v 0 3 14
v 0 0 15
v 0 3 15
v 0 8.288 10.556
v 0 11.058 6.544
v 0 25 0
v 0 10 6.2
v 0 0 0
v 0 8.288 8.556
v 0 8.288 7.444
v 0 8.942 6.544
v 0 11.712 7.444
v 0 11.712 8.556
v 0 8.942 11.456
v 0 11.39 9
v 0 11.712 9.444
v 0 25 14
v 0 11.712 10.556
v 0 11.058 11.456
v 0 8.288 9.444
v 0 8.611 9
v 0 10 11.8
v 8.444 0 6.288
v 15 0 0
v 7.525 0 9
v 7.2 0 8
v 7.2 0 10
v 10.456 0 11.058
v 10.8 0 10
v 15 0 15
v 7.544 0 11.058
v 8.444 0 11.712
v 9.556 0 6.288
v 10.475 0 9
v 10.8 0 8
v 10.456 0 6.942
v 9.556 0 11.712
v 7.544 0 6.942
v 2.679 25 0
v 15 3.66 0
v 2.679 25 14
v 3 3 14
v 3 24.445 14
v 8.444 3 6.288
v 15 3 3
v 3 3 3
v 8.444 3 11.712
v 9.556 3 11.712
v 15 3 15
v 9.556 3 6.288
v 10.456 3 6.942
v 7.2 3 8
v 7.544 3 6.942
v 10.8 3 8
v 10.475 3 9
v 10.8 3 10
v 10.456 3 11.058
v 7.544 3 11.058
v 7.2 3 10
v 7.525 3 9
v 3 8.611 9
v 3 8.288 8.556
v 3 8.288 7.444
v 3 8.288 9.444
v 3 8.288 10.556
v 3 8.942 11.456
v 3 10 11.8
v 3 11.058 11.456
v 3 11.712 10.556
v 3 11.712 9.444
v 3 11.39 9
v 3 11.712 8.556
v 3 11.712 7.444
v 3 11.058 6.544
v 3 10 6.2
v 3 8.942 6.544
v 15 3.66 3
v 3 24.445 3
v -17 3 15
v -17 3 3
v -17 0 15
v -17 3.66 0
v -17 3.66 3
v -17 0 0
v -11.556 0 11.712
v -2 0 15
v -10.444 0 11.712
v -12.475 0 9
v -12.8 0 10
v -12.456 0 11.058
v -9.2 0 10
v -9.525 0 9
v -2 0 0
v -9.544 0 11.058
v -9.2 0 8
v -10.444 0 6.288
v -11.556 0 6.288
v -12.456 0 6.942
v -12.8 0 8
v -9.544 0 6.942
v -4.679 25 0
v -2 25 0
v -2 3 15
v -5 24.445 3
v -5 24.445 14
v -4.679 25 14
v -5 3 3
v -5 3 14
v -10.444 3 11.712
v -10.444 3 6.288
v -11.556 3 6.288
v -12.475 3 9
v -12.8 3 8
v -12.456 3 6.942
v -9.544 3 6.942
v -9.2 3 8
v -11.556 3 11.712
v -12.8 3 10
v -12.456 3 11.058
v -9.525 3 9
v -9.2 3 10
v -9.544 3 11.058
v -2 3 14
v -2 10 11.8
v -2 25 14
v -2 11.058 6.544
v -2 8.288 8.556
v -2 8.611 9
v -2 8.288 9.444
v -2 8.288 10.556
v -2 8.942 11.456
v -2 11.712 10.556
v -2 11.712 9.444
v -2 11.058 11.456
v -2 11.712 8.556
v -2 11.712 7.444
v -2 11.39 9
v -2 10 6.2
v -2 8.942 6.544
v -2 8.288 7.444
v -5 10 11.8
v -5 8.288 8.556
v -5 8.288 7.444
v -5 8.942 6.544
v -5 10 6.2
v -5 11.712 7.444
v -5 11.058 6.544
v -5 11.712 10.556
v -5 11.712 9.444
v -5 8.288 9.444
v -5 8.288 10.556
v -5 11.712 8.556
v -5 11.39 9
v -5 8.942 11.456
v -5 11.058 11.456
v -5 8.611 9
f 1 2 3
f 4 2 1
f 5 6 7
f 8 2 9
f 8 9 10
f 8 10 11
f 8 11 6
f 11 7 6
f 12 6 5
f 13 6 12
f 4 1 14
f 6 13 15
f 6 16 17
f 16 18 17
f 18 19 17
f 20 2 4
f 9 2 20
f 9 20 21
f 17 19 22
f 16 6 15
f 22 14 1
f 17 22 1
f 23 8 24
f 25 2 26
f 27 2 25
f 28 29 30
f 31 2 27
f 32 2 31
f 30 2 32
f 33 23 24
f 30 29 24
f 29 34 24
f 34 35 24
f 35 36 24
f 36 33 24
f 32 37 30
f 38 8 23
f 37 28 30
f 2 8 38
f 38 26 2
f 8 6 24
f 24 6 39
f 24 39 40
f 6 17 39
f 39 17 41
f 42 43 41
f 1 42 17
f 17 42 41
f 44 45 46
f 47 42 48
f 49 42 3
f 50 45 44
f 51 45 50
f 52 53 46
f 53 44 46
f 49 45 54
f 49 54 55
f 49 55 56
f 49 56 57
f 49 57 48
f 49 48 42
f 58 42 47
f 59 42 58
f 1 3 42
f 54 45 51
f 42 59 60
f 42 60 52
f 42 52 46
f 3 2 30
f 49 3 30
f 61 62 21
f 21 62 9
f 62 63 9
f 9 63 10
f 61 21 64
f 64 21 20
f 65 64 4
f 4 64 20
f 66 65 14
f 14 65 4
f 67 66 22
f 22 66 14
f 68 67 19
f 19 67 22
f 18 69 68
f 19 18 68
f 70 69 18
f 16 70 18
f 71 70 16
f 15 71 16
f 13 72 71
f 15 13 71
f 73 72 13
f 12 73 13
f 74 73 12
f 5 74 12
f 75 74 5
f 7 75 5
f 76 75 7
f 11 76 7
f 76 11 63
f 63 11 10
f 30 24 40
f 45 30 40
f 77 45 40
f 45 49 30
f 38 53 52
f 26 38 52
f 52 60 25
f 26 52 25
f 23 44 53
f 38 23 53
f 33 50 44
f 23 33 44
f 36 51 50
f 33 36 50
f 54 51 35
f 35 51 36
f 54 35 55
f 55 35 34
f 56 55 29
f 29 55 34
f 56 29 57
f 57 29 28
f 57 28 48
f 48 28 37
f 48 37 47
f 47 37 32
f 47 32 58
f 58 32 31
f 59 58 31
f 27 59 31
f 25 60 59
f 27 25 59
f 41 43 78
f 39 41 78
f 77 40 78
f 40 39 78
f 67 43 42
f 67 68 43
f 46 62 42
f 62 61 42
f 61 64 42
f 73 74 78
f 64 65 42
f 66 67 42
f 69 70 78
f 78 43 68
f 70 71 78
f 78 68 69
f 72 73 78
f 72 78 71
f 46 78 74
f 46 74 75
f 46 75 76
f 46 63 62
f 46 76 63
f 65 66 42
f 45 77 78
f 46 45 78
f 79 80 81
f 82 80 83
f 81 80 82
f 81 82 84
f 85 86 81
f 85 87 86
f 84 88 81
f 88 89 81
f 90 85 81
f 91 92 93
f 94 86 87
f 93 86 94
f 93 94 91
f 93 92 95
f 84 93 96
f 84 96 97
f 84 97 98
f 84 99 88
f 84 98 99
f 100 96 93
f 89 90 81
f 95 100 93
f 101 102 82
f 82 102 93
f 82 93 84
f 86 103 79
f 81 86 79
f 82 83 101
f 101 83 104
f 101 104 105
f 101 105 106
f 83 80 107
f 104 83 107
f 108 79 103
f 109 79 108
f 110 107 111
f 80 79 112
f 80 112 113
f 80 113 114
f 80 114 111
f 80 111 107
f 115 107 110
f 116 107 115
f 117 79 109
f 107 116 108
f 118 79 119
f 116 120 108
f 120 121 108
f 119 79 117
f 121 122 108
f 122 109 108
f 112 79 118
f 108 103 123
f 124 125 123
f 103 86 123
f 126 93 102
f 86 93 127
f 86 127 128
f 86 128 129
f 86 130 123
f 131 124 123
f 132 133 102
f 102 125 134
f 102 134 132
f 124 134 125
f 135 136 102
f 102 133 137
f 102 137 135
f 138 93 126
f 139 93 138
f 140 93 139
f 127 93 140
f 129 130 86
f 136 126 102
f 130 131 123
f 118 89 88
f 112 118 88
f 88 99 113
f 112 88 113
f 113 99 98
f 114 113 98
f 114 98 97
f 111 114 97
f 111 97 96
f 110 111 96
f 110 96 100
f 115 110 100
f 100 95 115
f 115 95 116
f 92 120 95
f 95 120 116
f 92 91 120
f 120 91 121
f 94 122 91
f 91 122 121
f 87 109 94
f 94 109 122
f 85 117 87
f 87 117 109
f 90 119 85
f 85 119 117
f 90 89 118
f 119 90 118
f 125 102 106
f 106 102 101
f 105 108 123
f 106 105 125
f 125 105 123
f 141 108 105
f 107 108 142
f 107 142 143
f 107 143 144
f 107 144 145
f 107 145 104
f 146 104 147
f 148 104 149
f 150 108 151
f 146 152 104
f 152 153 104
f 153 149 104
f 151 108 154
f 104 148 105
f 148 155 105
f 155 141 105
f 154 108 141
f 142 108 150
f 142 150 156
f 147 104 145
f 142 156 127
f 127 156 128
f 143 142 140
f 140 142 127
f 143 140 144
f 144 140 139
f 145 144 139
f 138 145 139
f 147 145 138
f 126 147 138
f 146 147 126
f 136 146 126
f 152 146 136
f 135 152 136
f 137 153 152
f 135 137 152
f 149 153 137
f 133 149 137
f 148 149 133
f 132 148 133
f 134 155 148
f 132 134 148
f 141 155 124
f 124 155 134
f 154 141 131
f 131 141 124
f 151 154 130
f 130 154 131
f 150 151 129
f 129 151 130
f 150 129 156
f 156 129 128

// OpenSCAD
module rambo_holder(){
difference(){cube([15,25,15]);


translate([3,3,3]) cube([15,25,15]);
translate([20,-5,-1]) rotate([0,0,30]) cube([15,45,17]);

translate([-2,3,14])  cube([15,45,17]);


translate([9,-1,8])rotate([-90,0,0])cylinder(r=1.8, h=30, $fn=10);
translate([9,-1,10])rotate([-90,0,0])cylinder(r=1.8, h=30, $fn=10);

translate([-1,10,8])rotate([0,90,0])cylinder(r=1.8, h=30, $fn=10);
translate([-1,10,10])rotate([0,90,0])cylinder(r=1.8, h=30, $fn=10);}

}

rambo_holder();
translate([-2,0,0])
mirror([1,0,0])
rambo_holder();
